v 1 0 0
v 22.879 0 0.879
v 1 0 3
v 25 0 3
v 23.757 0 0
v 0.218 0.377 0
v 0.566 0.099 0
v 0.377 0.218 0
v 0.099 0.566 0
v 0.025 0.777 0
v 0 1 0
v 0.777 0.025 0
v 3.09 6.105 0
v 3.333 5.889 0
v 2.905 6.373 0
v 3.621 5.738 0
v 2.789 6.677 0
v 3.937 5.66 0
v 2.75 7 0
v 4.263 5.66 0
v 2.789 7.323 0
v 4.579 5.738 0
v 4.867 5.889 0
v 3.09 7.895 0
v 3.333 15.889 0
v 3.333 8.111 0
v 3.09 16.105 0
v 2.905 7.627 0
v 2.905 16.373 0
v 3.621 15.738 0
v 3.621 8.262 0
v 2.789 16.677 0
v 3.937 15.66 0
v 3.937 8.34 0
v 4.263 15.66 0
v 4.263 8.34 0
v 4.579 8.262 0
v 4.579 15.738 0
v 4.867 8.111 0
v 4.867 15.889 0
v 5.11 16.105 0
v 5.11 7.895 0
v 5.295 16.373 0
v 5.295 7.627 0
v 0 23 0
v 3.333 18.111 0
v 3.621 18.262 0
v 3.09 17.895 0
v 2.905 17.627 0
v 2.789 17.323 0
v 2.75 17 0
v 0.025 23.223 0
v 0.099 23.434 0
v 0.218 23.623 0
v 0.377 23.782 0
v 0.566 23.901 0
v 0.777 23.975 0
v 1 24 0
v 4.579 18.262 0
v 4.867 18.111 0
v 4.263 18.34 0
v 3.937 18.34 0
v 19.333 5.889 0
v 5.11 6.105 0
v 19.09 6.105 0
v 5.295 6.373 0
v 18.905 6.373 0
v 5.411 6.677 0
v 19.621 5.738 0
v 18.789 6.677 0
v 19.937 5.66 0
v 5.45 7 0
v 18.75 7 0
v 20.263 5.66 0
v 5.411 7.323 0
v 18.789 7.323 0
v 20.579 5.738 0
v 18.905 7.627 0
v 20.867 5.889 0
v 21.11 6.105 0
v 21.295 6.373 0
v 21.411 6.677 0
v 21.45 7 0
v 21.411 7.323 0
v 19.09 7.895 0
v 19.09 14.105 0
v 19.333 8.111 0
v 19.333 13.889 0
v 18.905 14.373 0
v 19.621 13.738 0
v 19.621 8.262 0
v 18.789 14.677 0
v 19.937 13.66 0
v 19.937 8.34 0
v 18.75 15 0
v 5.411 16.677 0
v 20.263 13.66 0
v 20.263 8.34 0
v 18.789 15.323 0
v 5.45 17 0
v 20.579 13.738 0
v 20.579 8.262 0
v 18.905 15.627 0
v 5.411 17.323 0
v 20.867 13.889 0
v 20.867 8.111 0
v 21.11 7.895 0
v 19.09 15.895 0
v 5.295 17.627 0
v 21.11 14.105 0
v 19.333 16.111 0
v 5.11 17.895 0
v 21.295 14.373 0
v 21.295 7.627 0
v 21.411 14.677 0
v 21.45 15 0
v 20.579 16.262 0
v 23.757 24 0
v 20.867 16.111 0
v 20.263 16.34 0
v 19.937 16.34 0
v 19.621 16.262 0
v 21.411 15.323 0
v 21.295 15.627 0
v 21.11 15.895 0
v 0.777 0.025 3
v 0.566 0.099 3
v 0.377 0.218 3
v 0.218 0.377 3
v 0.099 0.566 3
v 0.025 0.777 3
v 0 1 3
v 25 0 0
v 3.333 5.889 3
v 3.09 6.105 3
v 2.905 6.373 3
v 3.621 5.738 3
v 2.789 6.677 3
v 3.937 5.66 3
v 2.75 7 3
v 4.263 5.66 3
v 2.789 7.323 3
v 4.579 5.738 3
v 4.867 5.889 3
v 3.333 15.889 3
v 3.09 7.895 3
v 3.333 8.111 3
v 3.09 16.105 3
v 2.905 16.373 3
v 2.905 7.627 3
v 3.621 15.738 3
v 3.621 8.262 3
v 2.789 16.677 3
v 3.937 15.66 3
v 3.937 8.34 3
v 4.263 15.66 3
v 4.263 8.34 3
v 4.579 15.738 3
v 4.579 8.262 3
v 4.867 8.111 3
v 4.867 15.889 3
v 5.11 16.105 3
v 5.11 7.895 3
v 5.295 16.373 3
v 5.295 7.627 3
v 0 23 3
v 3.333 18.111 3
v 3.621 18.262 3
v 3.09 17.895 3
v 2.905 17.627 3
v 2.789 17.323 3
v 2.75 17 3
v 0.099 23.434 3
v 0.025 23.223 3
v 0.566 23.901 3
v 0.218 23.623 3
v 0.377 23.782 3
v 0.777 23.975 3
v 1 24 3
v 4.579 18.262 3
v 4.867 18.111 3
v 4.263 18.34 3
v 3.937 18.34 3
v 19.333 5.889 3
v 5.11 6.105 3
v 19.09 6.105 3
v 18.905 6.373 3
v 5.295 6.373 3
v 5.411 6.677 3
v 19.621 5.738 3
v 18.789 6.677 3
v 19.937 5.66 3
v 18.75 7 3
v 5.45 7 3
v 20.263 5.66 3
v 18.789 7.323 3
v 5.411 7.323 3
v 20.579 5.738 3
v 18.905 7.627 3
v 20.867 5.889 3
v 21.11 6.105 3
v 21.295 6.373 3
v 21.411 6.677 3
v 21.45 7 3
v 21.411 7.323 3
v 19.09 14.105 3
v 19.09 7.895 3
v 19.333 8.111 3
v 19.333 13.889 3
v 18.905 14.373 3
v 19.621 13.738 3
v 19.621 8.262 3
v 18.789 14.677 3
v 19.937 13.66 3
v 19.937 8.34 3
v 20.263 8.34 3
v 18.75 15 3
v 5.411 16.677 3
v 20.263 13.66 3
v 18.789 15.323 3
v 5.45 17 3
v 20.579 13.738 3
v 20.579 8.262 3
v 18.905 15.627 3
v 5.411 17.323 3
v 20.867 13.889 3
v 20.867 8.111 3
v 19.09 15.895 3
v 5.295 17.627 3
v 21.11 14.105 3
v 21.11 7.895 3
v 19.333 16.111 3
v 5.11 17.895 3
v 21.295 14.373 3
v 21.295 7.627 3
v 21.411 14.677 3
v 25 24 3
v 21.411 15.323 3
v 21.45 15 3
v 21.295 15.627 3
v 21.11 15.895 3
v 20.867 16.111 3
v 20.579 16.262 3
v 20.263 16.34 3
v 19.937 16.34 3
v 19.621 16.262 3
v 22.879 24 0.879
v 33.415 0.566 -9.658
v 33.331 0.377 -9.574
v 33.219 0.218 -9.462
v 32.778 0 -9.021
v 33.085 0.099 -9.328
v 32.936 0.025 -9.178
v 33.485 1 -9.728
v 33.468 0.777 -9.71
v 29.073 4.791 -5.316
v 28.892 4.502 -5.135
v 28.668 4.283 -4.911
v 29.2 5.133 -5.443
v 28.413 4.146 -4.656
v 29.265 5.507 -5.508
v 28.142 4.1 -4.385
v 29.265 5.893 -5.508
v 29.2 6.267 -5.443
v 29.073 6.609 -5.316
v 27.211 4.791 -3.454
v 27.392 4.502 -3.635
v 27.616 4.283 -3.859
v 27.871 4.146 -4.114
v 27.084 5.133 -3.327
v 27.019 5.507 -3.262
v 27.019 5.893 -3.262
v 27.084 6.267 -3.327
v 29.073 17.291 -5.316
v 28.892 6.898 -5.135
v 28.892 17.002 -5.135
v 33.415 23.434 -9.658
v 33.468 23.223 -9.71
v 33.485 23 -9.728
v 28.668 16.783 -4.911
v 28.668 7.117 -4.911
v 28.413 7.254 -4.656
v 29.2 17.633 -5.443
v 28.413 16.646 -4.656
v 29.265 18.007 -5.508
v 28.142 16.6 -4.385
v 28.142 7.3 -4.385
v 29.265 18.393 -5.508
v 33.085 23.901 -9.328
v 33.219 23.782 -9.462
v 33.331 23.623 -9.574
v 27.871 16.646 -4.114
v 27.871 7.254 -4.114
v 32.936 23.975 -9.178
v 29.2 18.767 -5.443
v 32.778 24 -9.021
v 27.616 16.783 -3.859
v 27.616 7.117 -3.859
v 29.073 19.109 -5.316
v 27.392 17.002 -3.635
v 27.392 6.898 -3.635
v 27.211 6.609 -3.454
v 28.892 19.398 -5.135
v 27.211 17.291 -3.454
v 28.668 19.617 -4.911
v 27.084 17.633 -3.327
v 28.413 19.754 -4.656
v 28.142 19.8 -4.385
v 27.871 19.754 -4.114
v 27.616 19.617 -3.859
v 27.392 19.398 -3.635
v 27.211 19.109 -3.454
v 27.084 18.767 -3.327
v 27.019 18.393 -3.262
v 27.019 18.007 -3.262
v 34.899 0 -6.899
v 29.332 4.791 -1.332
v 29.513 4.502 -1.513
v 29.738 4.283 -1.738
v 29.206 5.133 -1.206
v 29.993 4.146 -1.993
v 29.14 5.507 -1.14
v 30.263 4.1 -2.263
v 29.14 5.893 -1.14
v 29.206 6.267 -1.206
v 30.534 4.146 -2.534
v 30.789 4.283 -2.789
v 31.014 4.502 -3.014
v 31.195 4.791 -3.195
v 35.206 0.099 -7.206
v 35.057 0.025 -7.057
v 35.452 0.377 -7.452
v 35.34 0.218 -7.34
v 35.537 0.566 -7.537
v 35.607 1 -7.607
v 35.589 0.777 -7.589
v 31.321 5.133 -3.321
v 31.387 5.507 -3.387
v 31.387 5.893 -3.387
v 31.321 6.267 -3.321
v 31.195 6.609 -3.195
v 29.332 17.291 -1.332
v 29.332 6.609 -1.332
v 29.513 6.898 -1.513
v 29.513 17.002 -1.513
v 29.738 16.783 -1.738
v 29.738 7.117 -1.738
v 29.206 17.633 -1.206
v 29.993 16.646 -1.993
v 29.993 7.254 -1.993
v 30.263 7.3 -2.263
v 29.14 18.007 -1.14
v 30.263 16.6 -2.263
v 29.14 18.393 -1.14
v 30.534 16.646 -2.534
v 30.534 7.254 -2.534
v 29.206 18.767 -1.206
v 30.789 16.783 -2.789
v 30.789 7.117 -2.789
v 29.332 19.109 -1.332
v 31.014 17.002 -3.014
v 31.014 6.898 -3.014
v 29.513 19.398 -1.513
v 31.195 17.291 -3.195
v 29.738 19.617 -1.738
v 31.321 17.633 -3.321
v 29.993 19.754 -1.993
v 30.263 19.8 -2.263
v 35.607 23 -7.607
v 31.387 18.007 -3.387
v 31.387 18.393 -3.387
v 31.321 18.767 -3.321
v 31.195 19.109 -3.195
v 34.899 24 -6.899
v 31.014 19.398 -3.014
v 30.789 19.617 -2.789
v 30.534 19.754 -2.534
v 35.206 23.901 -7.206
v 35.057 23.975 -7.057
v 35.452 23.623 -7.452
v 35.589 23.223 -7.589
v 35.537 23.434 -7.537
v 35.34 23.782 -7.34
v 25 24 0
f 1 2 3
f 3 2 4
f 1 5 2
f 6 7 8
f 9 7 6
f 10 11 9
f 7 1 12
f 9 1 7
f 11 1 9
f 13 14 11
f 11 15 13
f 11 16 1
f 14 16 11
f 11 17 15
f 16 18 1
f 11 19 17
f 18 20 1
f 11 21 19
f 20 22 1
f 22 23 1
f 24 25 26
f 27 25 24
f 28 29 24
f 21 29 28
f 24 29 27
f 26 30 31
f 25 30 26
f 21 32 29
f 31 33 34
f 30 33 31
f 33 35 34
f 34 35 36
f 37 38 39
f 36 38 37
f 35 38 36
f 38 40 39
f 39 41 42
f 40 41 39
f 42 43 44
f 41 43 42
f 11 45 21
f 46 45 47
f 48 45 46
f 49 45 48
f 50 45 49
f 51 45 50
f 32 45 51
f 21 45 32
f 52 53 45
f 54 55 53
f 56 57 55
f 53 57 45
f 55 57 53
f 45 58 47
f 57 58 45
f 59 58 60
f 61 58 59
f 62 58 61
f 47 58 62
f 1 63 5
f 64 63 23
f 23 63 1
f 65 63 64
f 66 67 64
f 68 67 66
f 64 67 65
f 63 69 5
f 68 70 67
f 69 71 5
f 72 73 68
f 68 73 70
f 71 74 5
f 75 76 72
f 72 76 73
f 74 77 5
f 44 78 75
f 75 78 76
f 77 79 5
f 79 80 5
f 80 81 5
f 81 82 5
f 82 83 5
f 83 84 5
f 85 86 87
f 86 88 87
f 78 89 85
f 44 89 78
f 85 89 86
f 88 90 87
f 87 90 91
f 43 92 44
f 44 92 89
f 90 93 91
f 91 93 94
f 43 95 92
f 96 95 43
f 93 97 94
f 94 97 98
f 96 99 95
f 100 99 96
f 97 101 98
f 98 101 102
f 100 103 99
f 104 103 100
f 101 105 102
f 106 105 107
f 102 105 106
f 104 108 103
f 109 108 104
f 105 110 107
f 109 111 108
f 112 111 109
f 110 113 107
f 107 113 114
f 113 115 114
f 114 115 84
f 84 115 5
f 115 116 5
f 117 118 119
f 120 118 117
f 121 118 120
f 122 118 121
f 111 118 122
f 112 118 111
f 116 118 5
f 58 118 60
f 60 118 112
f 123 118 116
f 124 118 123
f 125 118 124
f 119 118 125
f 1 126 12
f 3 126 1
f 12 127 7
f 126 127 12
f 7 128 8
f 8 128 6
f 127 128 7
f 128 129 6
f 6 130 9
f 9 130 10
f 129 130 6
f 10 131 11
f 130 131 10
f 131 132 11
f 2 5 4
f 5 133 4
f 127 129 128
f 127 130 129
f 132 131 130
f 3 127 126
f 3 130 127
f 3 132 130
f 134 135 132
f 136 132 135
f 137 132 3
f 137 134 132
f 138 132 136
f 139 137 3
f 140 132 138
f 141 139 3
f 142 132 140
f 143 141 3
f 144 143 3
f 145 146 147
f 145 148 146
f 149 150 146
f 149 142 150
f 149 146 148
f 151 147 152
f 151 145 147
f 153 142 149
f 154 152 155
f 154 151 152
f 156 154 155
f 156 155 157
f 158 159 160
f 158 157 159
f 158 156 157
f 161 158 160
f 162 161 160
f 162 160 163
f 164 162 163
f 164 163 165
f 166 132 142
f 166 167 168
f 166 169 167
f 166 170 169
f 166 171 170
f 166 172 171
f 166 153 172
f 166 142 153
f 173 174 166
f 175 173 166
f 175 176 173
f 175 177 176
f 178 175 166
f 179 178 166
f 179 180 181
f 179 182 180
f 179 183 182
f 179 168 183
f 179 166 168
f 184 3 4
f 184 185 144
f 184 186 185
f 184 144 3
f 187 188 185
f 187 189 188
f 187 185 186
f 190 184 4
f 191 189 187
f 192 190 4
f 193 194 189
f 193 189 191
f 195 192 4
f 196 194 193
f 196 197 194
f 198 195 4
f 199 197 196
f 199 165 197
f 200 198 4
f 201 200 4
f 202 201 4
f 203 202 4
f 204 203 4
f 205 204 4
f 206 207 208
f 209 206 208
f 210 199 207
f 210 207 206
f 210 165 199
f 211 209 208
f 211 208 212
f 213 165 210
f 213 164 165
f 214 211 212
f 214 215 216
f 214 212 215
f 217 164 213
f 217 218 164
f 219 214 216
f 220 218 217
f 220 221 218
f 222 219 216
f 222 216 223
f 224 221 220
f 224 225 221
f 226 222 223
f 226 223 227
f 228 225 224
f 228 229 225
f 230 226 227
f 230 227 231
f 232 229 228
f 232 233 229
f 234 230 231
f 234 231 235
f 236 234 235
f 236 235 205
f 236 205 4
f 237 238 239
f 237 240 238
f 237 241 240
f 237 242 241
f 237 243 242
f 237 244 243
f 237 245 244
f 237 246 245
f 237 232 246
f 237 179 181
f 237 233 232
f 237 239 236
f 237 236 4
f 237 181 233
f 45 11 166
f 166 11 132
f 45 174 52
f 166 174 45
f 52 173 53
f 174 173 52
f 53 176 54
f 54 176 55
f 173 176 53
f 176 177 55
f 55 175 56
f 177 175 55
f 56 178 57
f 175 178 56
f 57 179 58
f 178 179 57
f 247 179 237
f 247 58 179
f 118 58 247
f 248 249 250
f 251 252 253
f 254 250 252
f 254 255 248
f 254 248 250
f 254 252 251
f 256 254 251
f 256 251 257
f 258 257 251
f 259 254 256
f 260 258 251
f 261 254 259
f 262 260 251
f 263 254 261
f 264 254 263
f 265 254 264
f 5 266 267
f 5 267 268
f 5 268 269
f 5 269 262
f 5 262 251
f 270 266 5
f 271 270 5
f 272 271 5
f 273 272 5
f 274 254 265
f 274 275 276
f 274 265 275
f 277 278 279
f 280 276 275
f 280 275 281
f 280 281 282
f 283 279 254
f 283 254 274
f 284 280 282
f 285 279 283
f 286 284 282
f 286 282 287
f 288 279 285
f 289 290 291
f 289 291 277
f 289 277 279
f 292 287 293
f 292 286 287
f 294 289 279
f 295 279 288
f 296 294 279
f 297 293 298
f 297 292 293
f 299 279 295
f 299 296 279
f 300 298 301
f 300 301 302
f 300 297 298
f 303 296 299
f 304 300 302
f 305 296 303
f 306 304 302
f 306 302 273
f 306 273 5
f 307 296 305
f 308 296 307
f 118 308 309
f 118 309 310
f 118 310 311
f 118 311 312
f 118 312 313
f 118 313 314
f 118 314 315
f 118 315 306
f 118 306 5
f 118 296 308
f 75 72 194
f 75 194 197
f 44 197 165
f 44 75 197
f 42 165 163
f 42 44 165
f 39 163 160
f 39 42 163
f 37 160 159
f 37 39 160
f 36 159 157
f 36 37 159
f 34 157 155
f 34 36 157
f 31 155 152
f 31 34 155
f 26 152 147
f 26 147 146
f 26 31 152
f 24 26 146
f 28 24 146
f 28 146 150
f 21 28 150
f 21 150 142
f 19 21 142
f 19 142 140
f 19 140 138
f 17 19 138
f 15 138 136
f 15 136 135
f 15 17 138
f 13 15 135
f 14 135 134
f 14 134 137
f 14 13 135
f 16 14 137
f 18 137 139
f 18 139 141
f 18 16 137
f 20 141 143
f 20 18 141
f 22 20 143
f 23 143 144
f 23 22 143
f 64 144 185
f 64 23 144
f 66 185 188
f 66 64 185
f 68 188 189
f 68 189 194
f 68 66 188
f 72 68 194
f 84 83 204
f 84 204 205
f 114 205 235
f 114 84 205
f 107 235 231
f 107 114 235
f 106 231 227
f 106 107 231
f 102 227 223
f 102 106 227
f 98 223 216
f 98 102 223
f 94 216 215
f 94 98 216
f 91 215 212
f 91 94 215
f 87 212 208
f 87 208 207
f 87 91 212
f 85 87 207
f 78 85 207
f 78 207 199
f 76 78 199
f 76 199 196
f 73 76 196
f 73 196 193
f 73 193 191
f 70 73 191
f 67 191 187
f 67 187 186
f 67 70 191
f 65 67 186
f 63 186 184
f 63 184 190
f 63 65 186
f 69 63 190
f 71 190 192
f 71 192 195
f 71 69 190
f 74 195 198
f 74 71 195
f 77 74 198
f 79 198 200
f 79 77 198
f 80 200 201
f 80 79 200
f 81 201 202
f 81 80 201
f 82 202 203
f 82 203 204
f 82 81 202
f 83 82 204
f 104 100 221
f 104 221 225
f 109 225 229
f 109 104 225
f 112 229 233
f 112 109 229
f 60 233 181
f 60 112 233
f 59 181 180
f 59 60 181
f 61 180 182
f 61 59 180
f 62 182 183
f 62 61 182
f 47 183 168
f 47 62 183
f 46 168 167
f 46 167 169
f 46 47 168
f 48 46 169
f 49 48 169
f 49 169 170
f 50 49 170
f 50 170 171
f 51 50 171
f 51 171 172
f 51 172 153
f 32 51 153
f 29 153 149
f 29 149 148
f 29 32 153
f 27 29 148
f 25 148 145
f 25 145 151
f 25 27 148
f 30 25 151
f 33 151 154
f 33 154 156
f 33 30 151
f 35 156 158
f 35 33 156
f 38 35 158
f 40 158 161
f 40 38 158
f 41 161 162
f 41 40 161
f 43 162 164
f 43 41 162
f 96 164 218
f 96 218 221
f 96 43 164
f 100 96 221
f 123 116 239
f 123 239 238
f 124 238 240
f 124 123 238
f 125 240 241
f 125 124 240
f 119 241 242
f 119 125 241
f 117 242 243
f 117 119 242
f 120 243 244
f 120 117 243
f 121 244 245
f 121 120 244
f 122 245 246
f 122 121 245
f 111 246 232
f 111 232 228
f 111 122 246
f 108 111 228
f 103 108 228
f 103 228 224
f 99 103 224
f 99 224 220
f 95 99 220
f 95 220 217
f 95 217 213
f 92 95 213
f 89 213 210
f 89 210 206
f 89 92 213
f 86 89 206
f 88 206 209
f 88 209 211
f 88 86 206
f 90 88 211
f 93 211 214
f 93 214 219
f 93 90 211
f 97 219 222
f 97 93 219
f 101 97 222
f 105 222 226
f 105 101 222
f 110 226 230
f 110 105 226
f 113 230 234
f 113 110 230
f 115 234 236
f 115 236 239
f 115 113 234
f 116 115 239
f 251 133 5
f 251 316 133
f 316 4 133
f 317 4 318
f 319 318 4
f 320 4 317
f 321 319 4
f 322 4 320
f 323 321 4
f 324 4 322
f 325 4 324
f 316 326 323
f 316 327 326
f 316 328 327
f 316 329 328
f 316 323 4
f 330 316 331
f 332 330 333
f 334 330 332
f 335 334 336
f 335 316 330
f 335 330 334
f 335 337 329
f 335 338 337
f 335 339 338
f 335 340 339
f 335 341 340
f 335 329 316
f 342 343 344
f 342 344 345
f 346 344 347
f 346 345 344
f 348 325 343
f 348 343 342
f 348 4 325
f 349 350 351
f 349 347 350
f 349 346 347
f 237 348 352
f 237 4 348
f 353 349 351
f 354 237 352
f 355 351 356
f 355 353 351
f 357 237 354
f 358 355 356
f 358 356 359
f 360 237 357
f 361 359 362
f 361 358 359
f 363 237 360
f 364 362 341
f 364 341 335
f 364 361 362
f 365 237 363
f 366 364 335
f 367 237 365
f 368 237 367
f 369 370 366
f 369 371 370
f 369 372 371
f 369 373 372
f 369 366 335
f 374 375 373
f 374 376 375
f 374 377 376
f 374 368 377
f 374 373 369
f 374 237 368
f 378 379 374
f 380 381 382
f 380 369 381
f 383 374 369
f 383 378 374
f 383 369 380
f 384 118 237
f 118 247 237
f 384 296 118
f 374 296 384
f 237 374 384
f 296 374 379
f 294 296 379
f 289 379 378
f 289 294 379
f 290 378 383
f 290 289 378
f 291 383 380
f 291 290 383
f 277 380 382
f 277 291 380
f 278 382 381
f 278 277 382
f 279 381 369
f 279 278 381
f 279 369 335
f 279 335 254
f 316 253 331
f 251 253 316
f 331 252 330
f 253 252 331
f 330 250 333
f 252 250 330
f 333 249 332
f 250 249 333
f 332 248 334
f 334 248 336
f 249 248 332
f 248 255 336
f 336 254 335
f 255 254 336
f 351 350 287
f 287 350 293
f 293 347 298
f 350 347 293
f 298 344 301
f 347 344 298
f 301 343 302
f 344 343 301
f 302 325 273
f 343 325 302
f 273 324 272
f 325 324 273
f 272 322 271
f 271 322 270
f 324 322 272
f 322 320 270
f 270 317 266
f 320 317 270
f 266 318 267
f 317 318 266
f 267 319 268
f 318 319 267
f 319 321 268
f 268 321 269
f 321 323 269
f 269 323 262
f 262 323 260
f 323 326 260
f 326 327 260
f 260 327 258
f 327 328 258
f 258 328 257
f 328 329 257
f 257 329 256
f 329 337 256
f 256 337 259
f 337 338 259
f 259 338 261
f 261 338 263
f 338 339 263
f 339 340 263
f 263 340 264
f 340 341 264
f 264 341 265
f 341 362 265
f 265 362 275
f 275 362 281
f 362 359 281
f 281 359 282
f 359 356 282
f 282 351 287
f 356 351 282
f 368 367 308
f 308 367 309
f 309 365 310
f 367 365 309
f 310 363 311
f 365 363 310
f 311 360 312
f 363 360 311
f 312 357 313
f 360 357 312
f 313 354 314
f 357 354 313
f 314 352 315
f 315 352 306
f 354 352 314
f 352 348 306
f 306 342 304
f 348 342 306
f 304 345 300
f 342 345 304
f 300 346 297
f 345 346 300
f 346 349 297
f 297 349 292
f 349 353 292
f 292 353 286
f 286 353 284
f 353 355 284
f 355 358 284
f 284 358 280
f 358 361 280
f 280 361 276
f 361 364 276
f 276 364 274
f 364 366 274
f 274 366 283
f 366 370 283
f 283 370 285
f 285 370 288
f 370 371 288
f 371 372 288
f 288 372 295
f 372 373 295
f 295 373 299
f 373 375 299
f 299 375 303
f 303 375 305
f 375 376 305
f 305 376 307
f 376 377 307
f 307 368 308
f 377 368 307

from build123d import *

# Parameters (mm, degrees)
SKETCH_W     = 25
SKETCH_H     = 24
SKETCH_R     = 1.35
PAD_DEPTH    = 3
PAD001_DEPTH = 24
SKETCH002_R  = 1.6
POCKET_DEPTH = 26.67867
FILLET_R     = 1


with BuildPart() as part:
    # Sketch → Pad (new body)
    with BuildSketch(Plane.XY):
        with Locations((12.5, 12)):
            Rectangle(SKETCH_W, SKETCH_H)
        with Locations((4.1, 17)):
            Circle(SKETCH_R, mode=Mode.SUBTRACT)
        with Locations((20.1, 15)):
            Circle(SKETCH_R, mode=Mode.SUBTRACT)
        with Locations((4.1, 7)):
            Circle(SKETCH_R, mode=Mode.SUBTRACT)
        with Locations((20.1, 7)):
            Circle(SKETCH_R, mode=Mode.SUBTRACT)
    extrude(amount=PAD_DEPTH)

    # Sketch001 (on Face3 of Pad) → Pad001 (join)
    with BuildSketch(Plane(origin=(0, 24, 0), x_dir=(-1, 0, 0), z_dir=(0, 1, 0))):
        Polygon((-25, 3), (-35.606602, -7.606602), (-33.485281, -9.727922), (-22.87868, 0.87868), align=None)
    extrude(amount=-PAD001_DEPTH)

    # Sketch002 (on Face13 of Pad001) → Pocket (cut, through all)
    with BuildSketch(Plane(origin=(14, 0, 14), x_dir=(0, 1, 0), z_dir=(0.707107, 0, 0.707107))):
        with Locations((5.7, -23)):
            Circle(SKETCH002_R)
        with Locations((18.2, -23)):
            Circle(SKETCH002_R)
    extrude(amount=-POCKET_DEPTH, mode=Mode.SUBTRACT)

    # Fillet
    fillet_edges = [part.edges().sort_by_distance(p)[0] for p in [
        (34.545942, 24, -8.667262),
        (34.545942, 0, -8.667262),
        (0, 24, 1.5),
        (0, 0, 1.5),
    ]]
    fillet(fillet_edges, radius=FILLET_R)


solid = part.part
